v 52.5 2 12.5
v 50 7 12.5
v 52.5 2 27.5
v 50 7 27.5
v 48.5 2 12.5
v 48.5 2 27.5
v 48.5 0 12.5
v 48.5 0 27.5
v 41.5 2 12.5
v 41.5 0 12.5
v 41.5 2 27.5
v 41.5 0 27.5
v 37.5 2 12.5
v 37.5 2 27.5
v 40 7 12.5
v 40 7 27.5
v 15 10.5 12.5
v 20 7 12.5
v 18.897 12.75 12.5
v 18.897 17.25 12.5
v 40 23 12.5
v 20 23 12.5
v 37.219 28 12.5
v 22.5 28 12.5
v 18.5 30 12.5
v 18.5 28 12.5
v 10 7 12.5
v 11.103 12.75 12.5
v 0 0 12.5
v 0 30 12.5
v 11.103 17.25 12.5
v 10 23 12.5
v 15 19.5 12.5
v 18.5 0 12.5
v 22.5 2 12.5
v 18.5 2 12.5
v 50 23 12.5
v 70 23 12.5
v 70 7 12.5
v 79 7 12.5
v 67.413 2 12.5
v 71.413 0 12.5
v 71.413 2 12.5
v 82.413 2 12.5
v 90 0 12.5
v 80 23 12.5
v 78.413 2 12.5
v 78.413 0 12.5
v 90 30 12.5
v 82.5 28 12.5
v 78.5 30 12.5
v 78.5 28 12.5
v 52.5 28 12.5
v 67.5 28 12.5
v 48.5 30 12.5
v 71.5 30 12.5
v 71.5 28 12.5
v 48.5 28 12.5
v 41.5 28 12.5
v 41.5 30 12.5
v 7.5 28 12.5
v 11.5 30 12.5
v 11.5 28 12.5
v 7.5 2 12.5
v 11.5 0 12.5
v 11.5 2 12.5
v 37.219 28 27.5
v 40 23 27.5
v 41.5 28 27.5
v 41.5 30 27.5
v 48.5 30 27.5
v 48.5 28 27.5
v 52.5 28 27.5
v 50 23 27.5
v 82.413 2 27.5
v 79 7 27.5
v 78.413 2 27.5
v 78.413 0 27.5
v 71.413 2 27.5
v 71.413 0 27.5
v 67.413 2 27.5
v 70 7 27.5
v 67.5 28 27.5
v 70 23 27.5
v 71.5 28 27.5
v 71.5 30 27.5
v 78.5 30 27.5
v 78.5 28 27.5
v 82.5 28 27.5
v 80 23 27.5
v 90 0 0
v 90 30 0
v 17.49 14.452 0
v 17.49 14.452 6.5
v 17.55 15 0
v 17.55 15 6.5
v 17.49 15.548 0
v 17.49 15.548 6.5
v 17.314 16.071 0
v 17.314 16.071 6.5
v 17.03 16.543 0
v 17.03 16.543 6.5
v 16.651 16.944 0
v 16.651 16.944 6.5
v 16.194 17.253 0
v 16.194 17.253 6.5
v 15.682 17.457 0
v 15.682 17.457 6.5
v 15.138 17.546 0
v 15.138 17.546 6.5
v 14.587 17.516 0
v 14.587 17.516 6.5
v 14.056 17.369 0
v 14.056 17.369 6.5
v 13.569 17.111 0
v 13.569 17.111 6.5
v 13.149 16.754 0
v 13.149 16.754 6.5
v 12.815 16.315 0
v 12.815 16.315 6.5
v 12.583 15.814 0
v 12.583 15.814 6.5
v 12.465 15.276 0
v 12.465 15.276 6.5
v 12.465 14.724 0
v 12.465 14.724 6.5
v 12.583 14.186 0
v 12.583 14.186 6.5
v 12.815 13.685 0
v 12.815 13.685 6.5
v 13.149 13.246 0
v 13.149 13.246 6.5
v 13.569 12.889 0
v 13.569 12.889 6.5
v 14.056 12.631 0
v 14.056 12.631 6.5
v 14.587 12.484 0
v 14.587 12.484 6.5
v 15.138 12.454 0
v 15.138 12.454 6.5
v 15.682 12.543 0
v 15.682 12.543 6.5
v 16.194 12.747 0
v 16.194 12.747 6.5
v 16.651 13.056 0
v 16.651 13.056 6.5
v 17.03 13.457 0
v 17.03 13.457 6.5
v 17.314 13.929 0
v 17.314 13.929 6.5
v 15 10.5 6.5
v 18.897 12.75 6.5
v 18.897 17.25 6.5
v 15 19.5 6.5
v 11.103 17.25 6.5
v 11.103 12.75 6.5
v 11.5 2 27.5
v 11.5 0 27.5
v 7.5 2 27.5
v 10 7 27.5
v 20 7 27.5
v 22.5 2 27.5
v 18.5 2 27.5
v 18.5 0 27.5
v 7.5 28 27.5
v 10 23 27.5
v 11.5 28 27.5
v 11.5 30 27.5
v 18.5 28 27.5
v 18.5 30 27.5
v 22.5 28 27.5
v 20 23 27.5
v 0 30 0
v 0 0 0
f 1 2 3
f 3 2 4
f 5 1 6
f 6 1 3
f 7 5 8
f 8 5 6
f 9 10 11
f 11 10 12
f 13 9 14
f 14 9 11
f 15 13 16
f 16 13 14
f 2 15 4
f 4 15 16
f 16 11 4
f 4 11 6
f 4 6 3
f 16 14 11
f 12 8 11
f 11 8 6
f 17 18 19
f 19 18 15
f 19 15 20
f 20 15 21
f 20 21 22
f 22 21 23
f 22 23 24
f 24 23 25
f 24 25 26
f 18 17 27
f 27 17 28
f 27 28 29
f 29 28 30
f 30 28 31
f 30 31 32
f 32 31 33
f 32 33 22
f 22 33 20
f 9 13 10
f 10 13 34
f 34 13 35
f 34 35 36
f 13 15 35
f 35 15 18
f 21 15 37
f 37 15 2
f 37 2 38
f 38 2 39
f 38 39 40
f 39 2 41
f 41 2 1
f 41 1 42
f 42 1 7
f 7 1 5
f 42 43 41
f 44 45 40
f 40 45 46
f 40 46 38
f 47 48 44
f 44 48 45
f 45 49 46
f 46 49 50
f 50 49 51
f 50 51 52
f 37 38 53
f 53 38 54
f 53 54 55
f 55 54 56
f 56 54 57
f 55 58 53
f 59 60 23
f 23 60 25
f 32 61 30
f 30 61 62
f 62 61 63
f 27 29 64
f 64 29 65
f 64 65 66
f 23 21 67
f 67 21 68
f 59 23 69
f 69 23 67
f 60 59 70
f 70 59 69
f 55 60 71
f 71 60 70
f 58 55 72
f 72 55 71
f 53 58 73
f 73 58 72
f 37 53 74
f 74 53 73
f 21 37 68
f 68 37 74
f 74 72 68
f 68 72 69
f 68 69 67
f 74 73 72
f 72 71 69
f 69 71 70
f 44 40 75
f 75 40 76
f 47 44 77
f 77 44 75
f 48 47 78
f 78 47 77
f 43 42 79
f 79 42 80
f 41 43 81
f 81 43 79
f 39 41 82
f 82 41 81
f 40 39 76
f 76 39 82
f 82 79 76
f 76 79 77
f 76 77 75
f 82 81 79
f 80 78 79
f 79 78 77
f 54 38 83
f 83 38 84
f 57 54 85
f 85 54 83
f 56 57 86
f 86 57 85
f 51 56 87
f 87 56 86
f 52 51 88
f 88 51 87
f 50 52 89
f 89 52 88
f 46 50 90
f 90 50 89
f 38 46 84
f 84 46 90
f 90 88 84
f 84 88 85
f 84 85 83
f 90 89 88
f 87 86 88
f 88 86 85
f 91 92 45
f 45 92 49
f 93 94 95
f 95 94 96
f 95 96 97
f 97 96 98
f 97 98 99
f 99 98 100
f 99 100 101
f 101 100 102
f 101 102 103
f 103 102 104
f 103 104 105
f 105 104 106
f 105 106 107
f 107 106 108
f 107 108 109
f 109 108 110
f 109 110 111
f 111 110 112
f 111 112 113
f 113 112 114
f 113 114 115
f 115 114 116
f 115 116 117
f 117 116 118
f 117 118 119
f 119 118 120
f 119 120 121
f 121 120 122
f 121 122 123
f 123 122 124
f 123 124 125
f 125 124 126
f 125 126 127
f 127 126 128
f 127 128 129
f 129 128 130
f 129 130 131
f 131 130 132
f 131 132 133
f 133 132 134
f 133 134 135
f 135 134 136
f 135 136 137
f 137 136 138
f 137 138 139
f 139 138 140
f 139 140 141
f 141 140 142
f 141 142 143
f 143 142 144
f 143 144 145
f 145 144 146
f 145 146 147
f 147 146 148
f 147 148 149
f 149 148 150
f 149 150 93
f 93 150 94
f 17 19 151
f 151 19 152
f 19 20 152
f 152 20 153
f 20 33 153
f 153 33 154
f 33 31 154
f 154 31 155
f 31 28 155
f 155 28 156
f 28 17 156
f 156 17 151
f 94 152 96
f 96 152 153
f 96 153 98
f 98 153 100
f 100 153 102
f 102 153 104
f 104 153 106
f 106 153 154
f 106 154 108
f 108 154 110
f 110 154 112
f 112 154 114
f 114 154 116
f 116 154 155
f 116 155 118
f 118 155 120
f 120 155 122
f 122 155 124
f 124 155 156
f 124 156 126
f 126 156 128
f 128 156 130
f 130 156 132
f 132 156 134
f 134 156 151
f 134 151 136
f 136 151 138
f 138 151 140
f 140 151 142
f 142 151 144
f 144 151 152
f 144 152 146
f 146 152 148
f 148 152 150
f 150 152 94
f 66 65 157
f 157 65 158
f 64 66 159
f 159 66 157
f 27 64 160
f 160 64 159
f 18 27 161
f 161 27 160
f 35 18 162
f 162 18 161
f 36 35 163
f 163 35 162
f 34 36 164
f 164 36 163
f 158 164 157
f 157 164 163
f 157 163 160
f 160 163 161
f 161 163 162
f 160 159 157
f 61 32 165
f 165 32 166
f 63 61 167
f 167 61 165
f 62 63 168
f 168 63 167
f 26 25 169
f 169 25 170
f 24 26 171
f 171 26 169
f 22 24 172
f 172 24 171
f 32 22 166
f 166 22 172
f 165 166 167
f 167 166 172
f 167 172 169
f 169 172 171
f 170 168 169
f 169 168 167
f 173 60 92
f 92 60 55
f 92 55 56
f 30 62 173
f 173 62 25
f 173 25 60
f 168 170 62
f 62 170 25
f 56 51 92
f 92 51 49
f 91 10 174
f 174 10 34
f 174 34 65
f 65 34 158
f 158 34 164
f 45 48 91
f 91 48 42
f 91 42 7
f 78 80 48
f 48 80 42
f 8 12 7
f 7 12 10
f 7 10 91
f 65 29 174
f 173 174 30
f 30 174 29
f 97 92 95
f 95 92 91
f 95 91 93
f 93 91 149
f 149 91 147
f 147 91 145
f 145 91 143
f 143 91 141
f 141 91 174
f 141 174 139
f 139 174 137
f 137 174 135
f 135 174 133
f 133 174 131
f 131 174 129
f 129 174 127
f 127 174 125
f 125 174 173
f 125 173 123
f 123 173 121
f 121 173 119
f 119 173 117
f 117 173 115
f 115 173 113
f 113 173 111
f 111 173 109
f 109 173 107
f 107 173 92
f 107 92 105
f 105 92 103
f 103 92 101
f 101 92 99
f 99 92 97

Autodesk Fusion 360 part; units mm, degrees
sketch "Sketch1" plane through (0, 0, 0) normal (0, 0, 1) x (1, 0, 0)
  line L0 (0, 0) -> (30, 0)
  line L1 (30, 0) -> (30, 30)
  line L2 (30, 30) -> (0, 30)
  line L3 (0, 30) -> (0, 0)
  dimension "d1" = 30
  dimension "d2" = 30
extrude "Extrude1" add sketch "Sketch1" along normal blind 12.5
sketch "Sketch2" plane through (0, 0, 12.5) normal (0, 0, 1) x (-1, 0, 0)
  line L0 (0, -30) -> (0, 0)
  line L1 (0, 0) -> (-30, 0)
  line L2 (-30, 0) -> (-30, -30)
  line L3 (-30, -30) -> (0, -30)
  line L4 (-15, -30) -> (-11.5, -30)
  line L5 (-15, -30) -> (-18.5, -30)
  line L6 (-18.5, -30) -> (-18.5, -28)
  line L7 (-11.5, -30) -> (-11.5, -28)
  line L8 (-15, -28) -> (-22.5, -28)
  line L9 (-15, -28) -> (-7.5, -28)
  line L10 (-15, -30) -> (-15, -23)
  line L11 (-15, -23) -> (-10, -23)
  line L12 (-15, -23) -> (-20, -23)
  line L13 (-10, -23) -> (-7.5, -28)
  line L14 (-20, -23) -> (-22.5, -28)
  dimension "d5" = 3.5
  dimension "d6" = 3.5
  dimension "d7" = 7.5
  dimension "d8" = 7.5
  dimension "d9" = 7
  dimension "d10" = 5
  dimension "d11" = 5
extrude "Extrude2" add sketch "Sketch2" along normal blind 15 contours L3 L4 L7 L9 L10 | L3 L5 L6 L8 L10 | L9 L10 L11 L13 | L8 L10 L12 L14
sketch "Sketch3" plane through (0, 0, 12.5) normal (0, 0, 1) x (-1, 0, 0)
  line L0 (-18.5, -30) -> (-18.5, -28)
  line L1 (-18.5, -28) -> (-22.5, -28)
  line L2 (-22.5, -28) -> (-20, -23)
  line L3 (-20, -23) -> (-10, -23)
  line L4 (-10, -23) -> (-7.5, -28)
  line L5 (-7.5, -28) -> (-11.5, -28)
  line L6 (-11.5, -28) -> (-11.5, -30)
  line L7 (-11.5, -30) -> (0, -30)
  line L8 (0, -30) -> (0, 0)
  line L9 (0, 0) -> (-30, 0)
  line L10 (-30, 0) -> (-30, -30)
  line L11 (-30, -30) -> (-18.5, -30)
  line L12 (-11.5, 0) -> (-11.5, -2)
  line L13 (-18.5, 0) -> (-18.5, -2)
  line L14 (-11.5, -2) -> (-7.5, -2)
  line L15 (-18.5, -2) -> (-22.5, -2)
  line L16 (-15, 0) -> (-15, -7)
  line L17 (-15, -7) -> (-20, -7)
  line L18 (-20, -7) -> (-22.5, -2)
  line L19 (-15, -7) -> (-10, -7)
  line L20 (-7.5, -2) -> (-10, -7)
  dimension "d15" = 4
  dimension "d16" = 4
  dimension "d17" = 7
  dimension "d18" = 5
extrude "Extrude3" add sketch "Sketch3" along normal blind 15 contours L9 L13 L15 L16 L17 L18 | L9 L12 L14 L16 L19 L20
sketch "Sketch4" plane through (0, 0, 12.5) normal (0, 0, 1) x (-1, 0, 0)
  line L0 (-18.5, -2) -> (-18.5, 0)
  line L1 (-18.5, 0) -> (-30, 0)
  line L2 (-30, 0) -> (-30, -30)
  line L3 (-30, -30) -> (-18.5, -30)
  line L4 (-18.5, -30) -> (-18.5, -28)
  line L5 (-18.5, -28) -> (-22.5, -28)
  line L6 (-22.5, -28) -> (-20, -23)
  line L7 (-20, -23) -> (-10, -23)
  line L8 (-10, -23) -> (-7.5, -28)
  line L9 (-7.5, -28) -> (-11.5, -28)
  line L10 (-11.5, -28) -> (-11.5, -30)
  line L11 (-11.5, -30) -> (0, -30)
  line L12 (0, -30) -> (0, 0)
  line L13 (0, 0) -> (-11.5, 0)
  line L14 (-11.5, 0) -> (-11.5, -2)
  line L15 (-11.5, -2) -> (-7.5, -2)
  line L16 (-7.5, -2) -> (-10, -7)
  line L17 (-10, -7) -> (-20, -7)
  line L18 (-20, -7) -> (-22.5, -2)
  line L19 (-22.5, -2) -> (-18.5, -2)
  line L20 (-15, -10.5) -> (-18.8971, -12.75)
  line L21 (-18.8971, -12.75) -> (-18.8971, -17.25)
  line L22 (-18.8971, -17.25) -> (-15, -19.5)
  line L23 (-15, -19.5) -> (-11.1029, -17.25)
  line L24 (-11.1029, -17.25) -> (-11.1029, -12.75)
  line L25 (-11.1029, -12.75) -> (-15, -10.5)
  point P0 (-15, -15)
  dimension "d21" = 4.5
extrude "Extrude4" cut sketch "Sketch4" against normal blind 6 contours L20 L21 L22 L23 L24 L25
sketch "Sketch5" plane through (0, 0, 6.5) normal (0, 0, 1) x (-1, 0, 0)
  line L0 (-11.1029, -12.75) -> (-15, -10.5)
  line L1 (-15, -10.5) -> (-18.8971, -12.75)
  line L2 (-18.8971, -12.75) -> (-18.8971, -17.25)
  line L3 (-18.8971, -17.25) -> (-15, -19.5)
  line L4 (-15, -19.5) -> (-11.1029, -17.25)
  line L5 (-11.1029, -17.25) -> (-11.1029, -12.75)
  circle A0 centre (-15, -15) radius 2.55
  dimension "d24" = 5.1
extrude "Extrude5" cut sketch "Sketch5" against normal blind 50 contours A0
sketch "Sketch6" plane through (0, 0, 0) normal (0, 0, 1) x (1, 0, 0)
  line L0 (30, 0) -> (90, 0)
  line L1 (90, 0) -> (90, 30)
  line L2 (90, 30) -> (30, 30)
  line L3 (30, 30) -> (30, 0)
  dimension "d27" = 60
extrude "Extrude6" add sketch "Sketch6" along normal blind 12.5
sketch "Sketch7" plane through (0, 0, 12.5) normal (0, 0, 1) x (-1, 0, 0)
  line L0 (-18.8971, -12.75) -> (-15, -10.5)
  line L1 (-15, -10.5) -> (-11.1029, -12.75)
  line L2 (-11.1029, -12.75) -> (-11.1029, -17.25)
  line L3 (-11.1029, -17.25) -> (-15, -19.5)
  line L4 (-15, -19.5) -> (-18.8971, -17.25)
  line L5 (-18.8971, -17.25) -> (-18.8971, -12.75)
  line L6 (-18.5, -2) -> (-18.5, 0)
  line L7 (-18.5, 0) -> (-90, 0)
  line L8 (-90, 0) -> (-90, -30)
  line L9 (-90, -30) -> (-18.5, -30)
  line L10 (-18.5, -30) -> (-18.5, -28)
  line L11 (-18.5, -28) -> (-22.5, -28)
  line L12 (-22.5, -28) -> (-20, -23)
  line L13 (-20, -23) -> (-10, -23)
  line L14 (-10, -23) -> (-7.5, -28)
  line L15 (-7.5, -28) -> (-11.5, -28)
  line L16 (-11.5, -28) -> (-11.5, -30)
  line L17 (-11.5, -30) -> (0, -30)
  line L18 (0, -30) -> (0, 0)
  line L19 (0, 0) -> (-11.5, 0)
  line L20 (-11.5, 0) -> (-11.5, -2)
  line L21 (-11.5, -2) -> (-7.5, -2)
  line L22 (-7.5, -2) -> (-10, -7)
  line L23 (-10, -7) -> (-20, -7)
  line L24 (-20, -7) -> (-22.5, -2)
  line L25 (-22.5, -2) -> (-18.5, -2)
  line L26 (0, -15) -> (-30, -15)
  line L27 (-90, -15) -> (-60, -15)
  line L28 (-41.5, 0) -> (-41.5, -2)
  line L29 (-48.5, 0) -> (-48.5, -2)
  line L30 (-48.5, -2) -> (-52.5, -2)
  line L31 (-41.5, -2) -> (-37.5, -2)
  line L32 (-45, -7) -> (-50, -7)
  line L33 (-50, -7) -> (-52.5, -2)
  line L34 (-45, -7) -> (-40, -7)
  line L35 (-40, -7) -> (-37.5, -2)
  line L36 (-45, -23) -> (-40, -23)
  line L37 (-45, -23) -> (-50, -23)
  line L38 (-41.5, -30) -> (-41.5, -28)
  line L39 (-48.5, -30) -> (-48.5, -28)
  line L40 (-48.5, -28) -> (-52.5, -28)
  line L41 (-41.5, -28) -> (-41.2186, -28)
  line L42 (-41.2186, -28) -> (-37.2186, -28)
  line L43 (-37.2186, -28) -> (-40, -23)
  line L44 (-50, -23) -> (-52.5, -28)
  line L45 (-75, -23) -> (-70, -23)
  line L46 (-70, -23) -> (-75, -23)
  line L47 (-75, -23) -> (-80, -23)
  line L48 (-71.5, -30) -> (-71.5, -28)
  line L49 (-78.5, -30) -> (-78.5, -28)
  line L50 (-71.5, -28) -> (-67.5, -28)
  line L51 (-70, -23) -> (-67.5, -28)
  line L52 (-80, -23) -> (-82.5, -28)
  line L53 (-82.5, -28) -> (-78.5, -28)
  line L54 (-71.413, 0) -> (-71.413, -2)
  line L55 (-78.413, 0) -> (-78.413, -2)
  line L56 (-78.413, -2) -> (-82.413, -2)
  line L57 (-71.413, -2) -> (-67.413, -2)
  line L58 (-75, -7) -> (-70, -7)
  line L59 (-70, -7) -> (-67.413, -2)
  line L60 (-75, -7) -> (-79, -7)
  line L61 (-79, -7) -> (-82.413, -2)
  dimension "d30" = 30
extrude "Extrude7" add sketch "Sketch7" along normal blind 15 contours L9 L36 L37 L38 L39 L40 L41 L42 L43 L44 | L7 L28 L29 L30 L31 L32 L33 L34 L35 | L9 L45 L46 L47 L48 L49 L50 L51 L52 L53 | L7 L54 L55 L56 L57 L58 L59 L60 L61
equation "d7 = ( 15 / 2 ) * 1 mm"
equation "d21 = ( 9 / 2 ) * 1 mm"
